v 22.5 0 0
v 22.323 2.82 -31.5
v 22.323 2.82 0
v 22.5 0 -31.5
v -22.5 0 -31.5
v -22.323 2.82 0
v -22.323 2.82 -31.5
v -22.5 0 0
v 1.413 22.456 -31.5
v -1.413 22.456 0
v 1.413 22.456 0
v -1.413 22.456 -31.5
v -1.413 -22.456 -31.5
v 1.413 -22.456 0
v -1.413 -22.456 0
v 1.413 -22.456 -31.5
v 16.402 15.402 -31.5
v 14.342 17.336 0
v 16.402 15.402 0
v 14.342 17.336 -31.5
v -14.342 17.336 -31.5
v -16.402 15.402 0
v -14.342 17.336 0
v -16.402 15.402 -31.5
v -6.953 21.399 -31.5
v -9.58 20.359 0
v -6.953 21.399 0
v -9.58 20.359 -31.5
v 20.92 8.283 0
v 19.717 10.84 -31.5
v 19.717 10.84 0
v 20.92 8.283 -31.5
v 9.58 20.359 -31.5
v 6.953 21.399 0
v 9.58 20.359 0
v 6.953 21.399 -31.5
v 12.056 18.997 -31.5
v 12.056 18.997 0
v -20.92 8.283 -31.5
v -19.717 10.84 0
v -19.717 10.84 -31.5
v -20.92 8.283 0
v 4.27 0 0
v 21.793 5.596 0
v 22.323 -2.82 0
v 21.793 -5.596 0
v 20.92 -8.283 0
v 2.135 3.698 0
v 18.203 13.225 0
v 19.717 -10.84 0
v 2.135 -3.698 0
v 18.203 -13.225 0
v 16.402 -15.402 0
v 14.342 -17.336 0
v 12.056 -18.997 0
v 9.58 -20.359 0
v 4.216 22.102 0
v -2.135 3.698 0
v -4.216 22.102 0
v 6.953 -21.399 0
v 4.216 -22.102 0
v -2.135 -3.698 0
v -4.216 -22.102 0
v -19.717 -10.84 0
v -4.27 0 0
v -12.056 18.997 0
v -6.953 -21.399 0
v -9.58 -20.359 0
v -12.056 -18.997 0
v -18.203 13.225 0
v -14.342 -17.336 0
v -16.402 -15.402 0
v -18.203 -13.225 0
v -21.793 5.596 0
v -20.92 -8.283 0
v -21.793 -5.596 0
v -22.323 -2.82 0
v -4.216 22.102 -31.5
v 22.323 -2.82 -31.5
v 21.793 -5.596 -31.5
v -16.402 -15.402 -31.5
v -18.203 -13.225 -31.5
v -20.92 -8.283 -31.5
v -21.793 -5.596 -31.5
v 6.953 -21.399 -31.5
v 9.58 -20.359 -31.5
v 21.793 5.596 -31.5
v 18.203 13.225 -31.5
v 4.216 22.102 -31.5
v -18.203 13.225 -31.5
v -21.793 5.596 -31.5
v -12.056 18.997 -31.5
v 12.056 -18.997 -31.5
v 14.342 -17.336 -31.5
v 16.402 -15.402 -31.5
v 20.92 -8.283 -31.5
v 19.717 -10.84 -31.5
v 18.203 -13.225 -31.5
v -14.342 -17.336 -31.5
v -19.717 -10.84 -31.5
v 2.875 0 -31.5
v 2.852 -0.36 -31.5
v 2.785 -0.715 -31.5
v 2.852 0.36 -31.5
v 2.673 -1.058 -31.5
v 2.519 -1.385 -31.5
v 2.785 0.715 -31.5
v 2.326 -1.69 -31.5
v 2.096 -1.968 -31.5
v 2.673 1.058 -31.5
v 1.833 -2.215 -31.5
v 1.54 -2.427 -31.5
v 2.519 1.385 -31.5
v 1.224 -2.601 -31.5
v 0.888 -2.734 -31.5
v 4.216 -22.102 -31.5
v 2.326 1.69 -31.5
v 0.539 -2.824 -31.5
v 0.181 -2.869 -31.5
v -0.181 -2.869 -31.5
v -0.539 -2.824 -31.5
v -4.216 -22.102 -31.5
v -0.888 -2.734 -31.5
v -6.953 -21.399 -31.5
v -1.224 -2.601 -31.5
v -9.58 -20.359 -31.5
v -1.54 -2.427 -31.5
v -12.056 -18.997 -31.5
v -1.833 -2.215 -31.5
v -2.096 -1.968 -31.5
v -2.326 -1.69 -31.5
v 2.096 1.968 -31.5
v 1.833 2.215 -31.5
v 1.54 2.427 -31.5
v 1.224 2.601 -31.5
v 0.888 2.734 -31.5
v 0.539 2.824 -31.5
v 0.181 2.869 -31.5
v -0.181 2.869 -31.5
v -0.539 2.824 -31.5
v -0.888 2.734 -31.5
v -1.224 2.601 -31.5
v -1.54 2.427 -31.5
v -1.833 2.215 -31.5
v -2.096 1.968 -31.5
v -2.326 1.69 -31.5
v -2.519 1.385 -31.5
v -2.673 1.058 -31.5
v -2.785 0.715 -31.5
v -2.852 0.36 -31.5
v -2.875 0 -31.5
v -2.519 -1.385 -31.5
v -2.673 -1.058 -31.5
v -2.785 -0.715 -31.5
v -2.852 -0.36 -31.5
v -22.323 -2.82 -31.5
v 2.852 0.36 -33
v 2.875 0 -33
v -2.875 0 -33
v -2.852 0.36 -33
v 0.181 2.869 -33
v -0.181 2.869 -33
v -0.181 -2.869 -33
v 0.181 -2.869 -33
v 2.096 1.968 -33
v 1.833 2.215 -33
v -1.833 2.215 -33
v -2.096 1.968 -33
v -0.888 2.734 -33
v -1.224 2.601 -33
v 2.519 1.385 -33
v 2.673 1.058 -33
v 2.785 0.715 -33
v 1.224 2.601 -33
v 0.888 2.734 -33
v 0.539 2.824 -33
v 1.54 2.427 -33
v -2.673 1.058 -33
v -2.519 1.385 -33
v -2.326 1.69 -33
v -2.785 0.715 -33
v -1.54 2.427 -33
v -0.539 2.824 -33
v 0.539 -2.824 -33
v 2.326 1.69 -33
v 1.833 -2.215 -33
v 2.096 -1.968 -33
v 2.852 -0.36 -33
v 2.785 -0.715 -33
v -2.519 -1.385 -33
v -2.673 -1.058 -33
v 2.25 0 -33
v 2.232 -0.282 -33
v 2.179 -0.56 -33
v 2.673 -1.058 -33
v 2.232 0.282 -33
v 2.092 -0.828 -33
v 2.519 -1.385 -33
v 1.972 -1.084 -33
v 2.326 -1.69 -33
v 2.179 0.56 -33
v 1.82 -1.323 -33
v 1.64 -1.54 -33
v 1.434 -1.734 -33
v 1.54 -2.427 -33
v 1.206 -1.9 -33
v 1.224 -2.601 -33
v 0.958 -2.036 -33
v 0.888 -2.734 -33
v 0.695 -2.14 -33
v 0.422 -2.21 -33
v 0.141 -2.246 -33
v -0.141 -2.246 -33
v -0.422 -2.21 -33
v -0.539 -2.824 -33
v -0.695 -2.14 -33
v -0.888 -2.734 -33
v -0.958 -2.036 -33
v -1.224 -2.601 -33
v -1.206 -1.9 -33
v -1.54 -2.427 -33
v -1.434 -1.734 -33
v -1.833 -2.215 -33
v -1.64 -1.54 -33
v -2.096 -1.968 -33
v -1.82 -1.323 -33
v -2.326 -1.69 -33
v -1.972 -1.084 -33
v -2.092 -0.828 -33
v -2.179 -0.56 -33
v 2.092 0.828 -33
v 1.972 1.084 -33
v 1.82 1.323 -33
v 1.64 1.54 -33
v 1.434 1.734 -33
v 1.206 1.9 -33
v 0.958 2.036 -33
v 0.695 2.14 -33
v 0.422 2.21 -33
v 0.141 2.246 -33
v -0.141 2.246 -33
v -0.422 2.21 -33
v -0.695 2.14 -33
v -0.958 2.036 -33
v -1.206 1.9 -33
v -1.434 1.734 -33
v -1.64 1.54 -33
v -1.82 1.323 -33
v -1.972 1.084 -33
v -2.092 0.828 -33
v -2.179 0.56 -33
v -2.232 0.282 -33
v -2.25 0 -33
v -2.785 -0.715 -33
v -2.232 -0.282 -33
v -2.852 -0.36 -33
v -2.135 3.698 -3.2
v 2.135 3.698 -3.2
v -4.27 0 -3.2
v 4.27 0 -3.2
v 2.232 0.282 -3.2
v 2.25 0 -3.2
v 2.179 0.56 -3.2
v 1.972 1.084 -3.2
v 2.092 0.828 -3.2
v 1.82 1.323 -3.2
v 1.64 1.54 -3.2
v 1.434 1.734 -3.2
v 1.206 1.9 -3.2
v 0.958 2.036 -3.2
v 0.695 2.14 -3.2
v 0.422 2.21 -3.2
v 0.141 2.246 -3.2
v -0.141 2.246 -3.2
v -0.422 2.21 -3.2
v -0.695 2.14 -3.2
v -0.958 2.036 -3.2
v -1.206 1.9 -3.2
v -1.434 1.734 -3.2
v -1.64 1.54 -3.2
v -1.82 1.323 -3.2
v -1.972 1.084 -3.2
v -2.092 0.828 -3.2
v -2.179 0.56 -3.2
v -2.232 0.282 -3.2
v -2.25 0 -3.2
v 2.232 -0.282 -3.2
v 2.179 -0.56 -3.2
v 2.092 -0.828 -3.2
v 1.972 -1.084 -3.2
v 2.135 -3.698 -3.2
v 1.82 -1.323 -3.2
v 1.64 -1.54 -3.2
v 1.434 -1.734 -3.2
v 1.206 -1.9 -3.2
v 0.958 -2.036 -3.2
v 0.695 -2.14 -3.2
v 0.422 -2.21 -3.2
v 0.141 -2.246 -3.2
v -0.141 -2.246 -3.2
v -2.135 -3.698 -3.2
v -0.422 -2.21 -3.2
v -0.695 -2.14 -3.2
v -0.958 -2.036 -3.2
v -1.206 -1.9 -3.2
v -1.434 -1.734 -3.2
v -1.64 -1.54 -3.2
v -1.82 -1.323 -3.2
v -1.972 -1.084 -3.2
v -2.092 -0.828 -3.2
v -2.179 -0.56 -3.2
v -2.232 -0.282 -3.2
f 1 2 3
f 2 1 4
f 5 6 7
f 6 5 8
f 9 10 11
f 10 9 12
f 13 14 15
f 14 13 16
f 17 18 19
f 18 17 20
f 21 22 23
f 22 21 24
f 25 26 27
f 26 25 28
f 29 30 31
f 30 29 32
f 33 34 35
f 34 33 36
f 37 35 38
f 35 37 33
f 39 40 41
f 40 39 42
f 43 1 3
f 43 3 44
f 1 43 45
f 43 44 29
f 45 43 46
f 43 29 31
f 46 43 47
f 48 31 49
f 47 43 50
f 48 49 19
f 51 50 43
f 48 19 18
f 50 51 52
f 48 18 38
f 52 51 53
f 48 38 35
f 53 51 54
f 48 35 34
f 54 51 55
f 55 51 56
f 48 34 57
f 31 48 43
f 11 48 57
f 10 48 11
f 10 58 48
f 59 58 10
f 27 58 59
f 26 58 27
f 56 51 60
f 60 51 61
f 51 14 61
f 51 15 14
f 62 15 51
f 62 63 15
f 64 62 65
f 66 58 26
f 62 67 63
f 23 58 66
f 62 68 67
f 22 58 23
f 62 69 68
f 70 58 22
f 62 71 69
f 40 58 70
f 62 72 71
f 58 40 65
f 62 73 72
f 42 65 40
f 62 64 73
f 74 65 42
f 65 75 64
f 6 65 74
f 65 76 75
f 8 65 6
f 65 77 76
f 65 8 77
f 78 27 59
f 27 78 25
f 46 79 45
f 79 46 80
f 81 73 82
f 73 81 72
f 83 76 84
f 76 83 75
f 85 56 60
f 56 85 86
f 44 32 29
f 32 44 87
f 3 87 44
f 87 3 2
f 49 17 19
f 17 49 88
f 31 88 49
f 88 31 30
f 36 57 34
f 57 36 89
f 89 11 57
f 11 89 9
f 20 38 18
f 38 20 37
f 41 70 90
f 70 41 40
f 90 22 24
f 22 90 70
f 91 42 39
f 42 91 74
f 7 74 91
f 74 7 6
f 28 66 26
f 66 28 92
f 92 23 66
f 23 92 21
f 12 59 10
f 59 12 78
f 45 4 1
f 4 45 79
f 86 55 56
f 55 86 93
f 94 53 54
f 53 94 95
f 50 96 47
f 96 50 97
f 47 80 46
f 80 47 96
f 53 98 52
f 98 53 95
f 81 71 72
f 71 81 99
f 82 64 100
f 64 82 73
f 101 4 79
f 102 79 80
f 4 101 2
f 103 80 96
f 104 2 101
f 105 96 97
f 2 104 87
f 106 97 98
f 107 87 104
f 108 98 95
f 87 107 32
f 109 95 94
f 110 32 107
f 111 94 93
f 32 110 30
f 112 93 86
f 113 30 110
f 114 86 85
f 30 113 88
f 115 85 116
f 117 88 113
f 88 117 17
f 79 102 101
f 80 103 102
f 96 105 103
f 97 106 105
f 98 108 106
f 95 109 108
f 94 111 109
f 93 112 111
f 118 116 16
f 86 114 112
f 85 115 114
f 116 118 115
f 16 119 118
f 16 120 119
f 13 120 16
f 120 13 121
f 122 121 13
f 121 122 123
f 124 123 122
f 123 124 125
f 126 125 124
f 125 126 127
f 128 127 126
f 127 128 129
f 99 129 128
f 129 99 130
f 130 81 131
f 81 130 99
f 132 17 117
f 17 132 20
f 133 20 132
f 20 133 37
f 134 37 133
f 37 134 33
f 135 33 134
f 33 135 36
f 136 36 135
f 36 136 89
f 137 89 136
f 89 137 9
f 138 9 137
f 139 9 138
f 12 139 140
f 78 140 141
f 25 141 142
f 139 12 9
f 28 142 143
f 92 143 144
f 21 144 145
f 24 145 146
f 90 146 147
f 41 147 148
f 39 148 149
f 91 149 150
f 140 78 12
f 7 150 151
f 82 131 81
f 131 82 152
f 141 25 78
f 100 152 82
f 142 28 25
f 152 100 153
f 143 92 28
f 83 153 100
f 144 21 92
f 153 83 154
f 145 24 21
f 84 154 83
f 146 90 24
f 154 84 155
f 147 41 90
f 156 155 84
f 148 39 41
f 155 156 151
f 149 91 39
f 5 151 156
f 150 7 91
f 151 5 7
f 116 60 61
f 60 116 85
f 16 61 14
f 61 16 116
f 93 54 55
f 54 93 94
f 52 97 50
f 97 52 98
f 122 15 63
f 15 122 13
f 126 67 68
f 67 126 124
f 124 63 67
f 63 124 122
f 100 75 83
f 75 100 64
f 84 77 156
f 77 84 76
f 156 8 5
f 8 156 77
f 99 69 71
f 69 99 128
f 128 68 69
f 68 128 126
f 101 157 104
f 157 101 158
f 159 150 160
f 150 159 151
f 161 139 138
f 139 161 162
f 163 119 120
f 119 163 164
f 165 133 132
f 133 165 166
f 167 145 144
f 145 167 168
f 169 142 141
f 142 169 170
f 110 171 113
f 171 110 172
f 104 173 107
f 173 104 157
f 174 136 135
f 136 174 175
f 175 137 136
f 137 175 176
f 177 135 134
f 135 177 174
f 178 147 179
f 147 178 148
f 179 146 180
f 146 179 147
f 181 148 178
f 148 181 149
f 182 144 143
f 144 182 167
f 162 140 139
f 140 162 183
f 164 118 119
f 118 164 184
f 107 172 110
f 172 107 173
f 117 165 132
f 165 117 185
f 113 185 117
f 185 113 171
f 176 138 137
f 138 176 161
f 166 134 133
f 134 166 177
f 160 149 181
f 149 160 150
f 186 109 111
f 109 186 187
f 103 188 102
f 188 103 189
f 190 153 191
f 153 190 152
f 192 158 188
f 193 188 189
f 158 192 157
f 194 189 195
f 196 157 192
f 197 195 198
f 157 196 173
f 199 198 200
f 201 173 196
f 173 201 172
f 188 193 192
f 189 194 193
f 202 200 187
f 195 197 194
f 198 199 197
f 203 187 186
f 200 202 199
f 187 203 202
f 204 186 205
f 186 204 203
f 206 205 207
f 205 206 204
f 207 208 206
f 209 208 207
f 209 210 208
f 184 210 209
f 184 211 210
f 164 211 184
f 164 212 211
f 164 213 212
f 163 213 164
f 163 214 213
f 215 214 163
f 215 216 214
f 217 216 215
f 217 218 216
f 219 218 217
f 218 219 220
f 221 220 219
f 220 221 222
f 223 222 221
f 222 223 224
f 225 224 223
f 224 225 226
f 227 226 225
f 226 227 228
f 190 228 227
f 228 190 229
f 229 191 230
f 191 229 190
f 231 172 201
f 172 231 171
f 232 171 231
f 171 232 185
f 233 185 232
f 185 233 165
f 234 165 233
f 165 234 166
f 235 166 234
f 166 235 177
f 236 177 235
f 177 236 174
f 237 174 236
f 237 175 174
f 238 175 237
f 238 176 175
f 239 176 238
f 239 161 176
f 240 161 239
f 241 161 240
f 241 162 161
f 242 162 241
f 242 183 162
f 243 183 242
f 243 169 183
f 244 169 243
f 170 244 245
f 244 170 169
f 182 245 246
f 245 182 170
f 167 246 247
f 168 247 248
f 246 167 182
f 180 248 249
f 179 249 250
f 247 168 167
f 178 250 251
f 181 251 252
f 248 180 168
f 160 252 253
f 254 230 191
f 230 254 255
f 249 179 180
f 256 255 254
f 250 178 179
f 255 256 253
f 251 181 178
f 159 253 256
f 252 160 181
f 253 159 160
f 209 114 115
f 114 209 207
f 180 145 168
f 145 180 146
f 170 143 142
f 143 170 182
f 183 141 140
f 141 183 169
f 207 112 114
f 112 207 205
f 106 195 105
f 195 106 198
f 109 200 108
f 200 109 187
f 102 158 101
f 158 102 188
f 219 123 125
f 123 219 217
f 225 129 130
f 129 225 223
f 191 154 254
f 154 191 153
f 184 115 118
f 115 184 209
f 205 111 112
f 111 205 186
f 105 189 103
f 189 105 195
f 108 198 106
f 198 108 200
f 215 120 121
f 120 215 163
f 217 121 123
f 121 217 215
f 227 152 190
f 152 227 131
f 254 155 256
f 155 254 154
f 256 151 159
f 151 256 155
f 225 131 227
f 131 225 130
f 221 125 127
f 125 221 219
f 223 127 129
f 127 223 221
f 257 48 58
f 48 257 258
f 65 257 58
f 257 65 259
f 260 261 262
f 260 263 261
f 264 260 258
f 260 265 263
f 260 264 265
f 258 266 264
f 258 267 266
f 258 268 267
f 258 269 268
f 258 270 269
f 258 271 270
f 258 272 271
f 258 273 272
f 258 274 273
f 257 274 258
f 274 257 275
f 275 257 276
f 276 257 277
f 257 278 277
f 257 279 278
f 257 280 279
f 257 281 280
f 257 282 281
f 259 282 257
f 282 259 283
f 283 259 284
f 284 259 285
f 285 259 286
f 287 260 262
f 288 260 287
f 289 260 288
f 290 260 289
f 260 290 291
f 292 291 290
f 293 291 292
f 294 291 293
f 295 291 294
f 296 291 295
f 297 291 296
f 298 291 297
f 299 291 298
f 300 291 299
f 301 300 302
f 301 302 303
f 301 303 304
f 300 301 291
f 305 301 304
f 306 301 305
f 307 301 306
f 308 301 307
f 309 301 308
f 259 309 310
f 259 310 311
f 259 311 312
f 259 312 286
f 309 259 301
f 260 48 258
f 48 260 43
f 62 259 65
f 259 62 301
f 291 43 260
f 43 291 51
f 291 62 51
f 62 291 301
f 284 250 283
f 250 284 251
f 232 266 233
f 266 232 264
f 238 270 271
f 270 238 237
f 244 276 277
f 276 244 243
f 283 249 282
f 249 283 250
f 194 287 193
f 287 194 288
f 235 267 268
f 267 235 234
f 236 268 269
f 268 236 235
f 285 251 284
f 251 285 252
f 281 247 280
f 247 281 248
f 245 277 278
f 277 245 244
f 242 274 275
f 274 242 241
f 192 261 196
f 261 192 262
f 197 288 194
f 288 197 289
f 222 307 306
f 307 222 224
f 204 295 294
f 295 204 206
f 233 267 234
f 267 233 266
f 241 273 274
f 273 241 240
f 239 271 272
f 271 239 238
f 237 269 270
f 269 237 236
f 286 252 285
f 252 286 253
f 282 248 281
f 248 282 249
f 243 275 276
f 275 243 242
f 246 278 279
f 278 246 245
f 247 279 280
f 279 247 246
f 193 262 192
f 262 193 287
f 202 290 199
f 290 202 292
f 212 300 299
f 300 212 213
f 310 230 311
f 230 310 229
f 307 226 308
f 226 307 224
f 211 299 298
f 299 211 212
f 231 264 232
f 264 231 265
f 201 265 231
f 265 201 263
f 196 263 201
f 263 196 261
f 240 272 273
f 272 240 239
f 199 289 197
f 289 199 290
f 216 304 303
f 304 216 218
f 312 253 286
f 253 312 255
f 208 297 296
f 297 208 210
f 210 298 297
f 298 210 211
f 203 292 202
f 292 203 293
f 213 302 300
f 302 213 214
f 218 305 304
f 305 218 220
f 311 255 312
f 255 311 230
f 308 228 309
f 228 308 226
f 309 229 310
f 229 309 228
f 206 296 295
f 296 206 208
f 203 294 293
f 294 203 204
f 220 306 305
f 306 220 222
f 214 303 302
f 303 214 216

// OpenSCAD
$fn = 50;


difference() {
	union() {
		translate(v = [0, 0, -31.5000000000]) {
			cylinder(h = 31.5000000000, r = 22.5000000000);
		}
		#translate(v = [0, 0, -33.0000000000]) {
			cylinder(h = 33, r = 2.8750000000);
		}
	}
	union() {
		translate(v = [0, 0, 0]) {
			rotate(a = [0, 0, 0]) {
				difference() {
					union() {
						translate(v = [0, 0, -3.2000000000]) {
							linear_extrude(height = 3.2000000000) {
								polygon(points = [[4.2698000000, 0.0000000000], [2.1349000000, 3.6977552691], [-2.1349000000, 3.6977552691], [-4.2698000000, 0.0000000000], [-2.1349000000, -3.6977552691], [2.1349000000, -3.6977552691]]);
							}
						}
					}
					union();
				}
			}
		}
		#translate(v = [0, 0, -100.0000000000]) {
			cylinder(h = 200, r = 2.2500000000);
		}
	}
}
